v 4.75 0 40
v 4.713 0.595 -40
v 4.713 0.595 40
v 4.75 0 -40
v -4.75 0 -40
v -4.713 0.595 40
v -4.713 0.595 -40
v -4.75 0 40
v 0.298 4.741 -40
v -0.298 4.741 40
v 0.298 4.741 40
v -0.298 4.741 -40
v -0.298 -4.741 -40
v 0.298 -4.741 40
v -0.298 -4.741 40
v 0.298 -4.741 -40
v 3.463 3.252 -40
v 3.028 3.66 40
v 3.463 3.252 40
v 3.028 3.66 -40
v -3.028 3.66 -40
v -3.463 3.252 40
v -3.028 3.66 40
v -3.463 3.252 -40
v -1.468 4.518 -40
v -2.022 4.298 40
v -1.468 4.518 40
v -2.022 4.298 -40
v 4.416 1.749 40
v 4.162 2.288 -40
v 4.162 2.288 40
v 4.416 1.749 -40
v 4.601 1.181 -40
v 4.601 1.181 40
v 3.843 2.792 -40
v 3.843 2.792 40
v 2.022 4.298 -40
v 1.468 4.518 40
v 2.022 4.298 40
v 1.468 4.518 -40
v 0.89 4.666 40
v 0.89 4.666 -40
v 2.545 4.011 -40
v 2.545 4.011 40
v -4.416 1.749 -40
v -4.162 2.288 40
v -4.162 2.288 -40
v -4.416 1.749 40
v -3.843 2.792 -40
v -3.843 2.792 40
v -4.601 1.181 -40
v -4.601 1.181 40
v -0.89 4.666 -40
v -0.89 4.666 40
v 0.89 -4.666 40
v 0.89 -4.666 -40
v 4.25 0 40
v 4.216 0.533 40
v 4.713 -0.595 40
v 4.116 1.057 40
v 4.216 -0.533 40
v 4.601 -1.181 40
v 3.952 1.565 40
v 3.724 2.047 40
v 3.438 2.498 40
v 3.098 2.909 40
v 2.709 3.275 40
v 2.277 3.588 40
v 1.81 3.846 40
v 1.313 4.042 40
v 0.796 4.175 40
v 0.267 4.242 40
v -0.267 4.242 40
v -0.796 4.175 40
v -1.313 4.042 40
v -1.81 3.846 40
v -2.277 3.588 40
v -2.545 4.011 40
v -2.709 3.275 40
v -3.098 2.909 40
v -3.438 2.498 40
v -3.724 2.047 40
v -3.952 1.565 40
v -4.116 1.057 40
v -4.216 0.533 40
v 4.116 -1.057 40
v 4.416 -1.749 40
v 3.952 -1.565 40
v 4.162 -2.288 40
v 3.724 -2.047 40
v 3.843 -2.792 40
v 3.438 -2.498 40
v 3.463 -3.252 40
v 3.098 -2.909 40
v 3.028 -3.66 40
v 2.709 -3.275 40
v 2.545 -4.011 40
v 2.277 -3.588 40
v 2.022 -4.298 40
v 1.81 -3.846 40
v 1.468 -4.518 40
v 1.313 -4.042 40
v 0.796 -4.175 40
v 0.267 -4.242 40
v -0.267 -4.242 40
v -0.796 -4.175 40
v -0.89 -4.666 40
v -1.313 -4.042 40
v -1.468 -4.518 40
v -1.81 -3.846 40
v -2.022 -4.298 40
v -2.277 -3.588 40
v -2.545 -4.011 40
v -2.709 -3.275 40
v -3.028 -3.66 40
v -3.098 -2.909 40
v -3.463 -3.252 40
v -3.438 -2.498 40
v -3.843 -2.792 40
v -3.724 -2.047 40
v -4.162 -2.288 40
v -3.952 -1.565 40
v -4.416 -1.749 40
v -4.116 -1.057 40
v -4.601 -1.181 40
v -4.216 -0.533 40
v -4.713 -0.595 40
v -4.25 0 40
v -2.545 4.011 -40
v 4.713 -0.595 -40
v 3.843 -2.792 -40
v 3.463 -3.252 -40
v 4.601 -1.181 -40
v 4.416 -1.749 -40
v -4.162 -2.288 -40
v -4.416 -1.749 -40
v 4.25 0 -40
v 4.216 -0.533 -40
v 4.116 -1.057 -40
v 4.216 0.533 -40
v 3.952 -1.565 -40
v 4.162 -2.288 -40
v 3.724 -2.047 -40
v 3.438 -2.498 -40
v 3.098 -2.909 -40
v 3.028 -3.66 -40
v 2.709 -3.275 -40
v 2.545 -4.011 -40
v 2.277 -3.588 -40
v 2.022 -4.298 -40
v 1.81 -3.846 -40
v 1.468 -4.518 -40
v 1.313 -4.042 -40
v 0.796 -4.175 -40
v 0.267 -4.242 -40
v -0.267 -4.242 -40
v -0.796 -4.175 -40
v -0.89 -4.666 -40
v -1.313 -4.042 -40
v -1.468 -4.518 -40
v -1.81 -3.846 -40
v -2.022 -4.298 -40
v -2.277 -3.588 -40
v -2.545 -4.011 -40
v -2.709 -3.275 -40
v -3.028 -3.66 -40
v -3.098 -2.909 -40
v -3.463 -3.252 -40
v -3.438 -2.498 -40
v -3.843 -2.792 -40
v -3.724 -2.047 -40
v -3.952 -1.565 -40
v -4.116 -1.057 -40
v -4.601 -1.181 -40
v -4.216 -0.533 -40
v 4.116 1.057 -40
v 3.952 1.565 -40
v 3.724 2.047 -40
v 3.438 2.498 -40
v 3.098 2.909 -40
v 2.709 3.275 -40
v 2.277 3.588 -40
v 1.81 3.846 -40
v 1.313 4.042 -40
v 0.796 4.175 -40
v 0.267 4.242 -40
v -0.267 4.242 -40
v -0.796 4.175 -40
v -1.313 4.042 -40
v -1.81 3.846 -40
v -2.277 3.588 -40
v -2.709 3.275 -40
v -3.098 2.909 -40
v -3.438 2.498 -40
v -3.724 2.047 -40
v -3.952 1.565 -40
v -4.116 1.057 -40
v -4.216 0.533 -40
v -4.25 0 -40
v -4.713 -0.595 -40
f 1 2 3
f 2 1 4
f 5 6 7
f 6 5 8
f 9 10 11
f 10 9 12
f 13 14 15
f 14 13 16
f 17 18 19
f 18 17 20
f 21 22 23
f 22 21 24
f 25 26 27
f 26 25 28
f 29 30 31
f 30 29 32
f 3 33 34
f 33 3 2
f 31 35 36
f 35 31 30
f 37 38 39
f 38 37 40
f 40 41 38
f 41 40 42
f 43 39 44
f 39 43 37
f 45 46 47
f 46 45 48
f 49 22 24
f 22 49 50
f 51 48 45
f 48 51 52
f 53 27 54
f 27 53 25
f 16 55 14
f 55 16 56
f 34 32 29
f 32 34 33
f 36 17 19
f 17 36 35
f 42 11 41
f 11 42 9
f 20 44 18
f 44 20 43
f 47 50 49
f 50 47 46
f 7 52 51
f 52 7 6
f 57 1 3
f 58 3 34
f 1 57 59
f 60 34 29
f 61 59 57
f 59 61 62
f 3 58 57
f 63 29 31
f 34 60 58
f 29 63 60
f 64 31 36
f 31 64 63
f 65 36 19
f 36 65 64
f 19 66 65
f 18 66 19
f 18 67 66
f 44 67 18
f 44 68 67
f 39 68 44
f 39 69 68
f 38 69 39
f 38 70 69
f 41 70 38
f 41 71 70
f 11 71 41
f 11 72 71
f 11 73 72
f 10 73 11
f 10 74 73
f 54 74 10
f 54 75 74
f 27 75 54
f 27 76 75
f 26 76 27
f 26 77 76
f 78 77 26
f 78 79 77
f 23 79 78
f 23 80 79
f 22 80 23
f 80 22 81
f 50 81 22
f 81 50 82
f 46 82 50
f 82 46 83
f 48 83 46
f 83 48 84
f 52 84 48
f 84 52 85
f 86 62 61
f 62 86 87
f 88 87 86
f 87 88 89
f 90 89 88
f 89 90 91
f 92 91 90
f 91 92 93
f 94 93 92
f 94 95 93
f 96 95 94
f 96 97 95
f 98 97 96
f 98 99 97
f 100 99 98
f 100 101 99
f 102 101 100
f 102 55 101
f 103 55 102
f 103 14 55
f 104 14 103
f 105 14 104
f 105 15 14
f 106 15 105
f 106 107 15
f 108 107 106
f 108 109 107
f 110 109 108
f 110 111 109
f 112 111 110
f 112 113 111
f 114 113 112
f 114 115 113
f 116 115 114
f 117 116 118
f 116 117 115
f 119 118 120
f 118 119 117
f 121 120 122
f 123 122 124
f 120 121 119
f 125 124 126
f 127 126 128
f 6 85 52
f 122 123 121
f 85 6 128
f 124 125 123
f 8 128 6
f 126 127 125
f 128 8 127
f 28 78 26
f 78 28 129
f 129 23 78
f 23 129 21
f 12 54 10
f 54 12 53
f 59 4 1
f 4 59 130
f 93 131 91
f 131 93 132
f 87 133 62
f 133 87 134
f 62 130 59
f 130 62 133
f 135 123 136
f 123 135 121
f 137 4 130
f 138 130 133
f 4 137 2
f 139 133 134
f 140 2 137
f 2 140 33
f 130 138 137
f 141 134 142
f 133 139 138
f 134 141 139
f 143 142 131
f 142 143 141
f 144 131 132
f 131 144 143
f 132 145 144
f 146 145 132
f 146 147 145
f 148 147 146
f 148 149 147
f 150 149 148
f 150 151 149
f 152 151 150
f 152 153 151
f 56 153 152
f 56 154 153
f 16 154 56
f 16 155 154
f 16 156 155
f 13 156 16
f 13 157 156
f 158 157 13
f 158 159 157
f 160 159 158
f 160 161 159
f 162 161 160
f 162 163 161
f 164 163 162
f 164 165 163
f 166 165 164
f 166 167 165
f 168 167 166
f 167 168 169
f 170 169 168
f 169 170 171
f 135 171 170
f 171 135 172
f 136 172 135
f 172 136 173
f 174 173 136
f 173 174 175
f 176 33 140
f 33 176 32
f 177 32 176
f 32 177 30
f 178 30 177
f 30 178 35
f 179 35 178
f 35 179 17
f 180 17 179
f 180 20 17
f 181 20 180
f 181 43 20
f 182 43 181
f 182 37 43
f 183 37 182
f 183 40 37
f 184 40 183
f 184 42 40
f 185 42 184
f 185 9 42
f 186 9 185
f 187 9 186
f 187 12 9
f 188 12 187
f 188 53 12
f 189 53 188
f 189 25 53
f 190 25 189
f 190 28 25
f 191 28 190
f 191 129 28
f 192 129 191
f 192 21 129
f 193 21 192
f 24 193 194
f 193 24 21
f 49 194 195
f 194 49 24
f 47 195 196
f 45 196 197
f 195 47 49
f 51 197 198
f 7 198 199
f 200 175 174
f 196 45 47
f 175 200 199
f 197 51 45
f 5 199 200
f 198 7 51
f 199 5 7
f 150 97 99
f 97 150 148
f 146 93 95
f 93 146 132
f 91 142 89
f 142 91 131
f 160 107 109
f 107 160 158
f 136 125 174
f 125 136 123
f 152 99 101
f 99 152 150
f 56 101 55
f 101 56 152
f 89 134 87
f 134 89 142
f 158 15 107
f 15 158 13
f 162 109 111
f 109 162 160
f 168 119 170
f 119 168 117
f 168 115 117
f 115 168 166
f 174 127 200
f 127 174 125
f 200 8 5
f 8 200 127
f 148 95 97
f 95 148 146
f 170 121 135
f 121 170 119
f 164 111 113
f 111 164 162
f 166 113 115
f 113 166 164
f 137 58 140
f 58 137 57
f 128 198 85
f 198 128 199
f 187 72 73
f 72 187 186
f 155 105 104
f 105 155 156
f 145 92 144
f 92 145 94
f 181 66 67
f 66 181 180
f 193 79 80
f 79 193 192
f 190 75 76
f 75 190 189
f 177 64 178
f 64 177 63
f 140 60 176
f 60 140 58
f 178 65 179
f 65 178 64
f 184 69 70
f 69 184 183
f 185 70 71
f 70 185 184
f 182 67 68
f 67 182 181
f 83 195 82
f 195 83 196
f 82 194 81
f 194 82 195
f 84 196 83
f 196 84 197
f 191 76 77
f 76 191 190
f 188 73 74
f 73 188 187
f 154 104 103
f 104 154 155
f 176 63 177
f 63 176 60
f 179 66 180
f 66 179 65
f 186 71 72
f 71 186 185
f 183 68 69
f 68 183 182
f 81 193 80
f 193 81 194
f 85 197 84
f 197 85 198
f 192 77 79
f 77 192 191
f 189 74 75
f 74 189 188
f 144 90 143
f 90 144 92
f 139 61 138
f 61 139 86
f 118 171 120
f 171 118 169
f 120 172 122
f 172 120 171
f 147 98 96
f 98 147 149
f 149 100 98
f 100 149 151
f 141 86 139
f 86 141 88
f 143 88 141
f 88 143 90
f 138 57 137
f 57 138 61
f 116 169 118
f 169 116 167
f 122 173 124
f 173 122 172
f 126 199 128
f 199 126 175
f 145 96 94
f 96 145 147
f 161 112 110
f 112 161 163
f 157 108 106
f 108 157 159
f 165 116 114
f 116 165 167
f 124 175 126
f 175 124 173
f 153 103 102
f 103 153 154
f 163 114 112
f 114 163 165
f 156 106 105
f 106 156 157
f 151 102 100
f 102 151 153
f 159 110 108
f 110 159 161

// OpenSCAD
$fn = 50;


difference() {
	union() {
		translate(v = [0, 0, -40.0000000000]) {
			cylinder(h = 80, r = 4.7500000000);
		}
	}
	union() {
		translate(v = [0, 0, -100.0000000000]) {
			cylinder(h = 200, r = 4.2500000000);
		}
	}
}
